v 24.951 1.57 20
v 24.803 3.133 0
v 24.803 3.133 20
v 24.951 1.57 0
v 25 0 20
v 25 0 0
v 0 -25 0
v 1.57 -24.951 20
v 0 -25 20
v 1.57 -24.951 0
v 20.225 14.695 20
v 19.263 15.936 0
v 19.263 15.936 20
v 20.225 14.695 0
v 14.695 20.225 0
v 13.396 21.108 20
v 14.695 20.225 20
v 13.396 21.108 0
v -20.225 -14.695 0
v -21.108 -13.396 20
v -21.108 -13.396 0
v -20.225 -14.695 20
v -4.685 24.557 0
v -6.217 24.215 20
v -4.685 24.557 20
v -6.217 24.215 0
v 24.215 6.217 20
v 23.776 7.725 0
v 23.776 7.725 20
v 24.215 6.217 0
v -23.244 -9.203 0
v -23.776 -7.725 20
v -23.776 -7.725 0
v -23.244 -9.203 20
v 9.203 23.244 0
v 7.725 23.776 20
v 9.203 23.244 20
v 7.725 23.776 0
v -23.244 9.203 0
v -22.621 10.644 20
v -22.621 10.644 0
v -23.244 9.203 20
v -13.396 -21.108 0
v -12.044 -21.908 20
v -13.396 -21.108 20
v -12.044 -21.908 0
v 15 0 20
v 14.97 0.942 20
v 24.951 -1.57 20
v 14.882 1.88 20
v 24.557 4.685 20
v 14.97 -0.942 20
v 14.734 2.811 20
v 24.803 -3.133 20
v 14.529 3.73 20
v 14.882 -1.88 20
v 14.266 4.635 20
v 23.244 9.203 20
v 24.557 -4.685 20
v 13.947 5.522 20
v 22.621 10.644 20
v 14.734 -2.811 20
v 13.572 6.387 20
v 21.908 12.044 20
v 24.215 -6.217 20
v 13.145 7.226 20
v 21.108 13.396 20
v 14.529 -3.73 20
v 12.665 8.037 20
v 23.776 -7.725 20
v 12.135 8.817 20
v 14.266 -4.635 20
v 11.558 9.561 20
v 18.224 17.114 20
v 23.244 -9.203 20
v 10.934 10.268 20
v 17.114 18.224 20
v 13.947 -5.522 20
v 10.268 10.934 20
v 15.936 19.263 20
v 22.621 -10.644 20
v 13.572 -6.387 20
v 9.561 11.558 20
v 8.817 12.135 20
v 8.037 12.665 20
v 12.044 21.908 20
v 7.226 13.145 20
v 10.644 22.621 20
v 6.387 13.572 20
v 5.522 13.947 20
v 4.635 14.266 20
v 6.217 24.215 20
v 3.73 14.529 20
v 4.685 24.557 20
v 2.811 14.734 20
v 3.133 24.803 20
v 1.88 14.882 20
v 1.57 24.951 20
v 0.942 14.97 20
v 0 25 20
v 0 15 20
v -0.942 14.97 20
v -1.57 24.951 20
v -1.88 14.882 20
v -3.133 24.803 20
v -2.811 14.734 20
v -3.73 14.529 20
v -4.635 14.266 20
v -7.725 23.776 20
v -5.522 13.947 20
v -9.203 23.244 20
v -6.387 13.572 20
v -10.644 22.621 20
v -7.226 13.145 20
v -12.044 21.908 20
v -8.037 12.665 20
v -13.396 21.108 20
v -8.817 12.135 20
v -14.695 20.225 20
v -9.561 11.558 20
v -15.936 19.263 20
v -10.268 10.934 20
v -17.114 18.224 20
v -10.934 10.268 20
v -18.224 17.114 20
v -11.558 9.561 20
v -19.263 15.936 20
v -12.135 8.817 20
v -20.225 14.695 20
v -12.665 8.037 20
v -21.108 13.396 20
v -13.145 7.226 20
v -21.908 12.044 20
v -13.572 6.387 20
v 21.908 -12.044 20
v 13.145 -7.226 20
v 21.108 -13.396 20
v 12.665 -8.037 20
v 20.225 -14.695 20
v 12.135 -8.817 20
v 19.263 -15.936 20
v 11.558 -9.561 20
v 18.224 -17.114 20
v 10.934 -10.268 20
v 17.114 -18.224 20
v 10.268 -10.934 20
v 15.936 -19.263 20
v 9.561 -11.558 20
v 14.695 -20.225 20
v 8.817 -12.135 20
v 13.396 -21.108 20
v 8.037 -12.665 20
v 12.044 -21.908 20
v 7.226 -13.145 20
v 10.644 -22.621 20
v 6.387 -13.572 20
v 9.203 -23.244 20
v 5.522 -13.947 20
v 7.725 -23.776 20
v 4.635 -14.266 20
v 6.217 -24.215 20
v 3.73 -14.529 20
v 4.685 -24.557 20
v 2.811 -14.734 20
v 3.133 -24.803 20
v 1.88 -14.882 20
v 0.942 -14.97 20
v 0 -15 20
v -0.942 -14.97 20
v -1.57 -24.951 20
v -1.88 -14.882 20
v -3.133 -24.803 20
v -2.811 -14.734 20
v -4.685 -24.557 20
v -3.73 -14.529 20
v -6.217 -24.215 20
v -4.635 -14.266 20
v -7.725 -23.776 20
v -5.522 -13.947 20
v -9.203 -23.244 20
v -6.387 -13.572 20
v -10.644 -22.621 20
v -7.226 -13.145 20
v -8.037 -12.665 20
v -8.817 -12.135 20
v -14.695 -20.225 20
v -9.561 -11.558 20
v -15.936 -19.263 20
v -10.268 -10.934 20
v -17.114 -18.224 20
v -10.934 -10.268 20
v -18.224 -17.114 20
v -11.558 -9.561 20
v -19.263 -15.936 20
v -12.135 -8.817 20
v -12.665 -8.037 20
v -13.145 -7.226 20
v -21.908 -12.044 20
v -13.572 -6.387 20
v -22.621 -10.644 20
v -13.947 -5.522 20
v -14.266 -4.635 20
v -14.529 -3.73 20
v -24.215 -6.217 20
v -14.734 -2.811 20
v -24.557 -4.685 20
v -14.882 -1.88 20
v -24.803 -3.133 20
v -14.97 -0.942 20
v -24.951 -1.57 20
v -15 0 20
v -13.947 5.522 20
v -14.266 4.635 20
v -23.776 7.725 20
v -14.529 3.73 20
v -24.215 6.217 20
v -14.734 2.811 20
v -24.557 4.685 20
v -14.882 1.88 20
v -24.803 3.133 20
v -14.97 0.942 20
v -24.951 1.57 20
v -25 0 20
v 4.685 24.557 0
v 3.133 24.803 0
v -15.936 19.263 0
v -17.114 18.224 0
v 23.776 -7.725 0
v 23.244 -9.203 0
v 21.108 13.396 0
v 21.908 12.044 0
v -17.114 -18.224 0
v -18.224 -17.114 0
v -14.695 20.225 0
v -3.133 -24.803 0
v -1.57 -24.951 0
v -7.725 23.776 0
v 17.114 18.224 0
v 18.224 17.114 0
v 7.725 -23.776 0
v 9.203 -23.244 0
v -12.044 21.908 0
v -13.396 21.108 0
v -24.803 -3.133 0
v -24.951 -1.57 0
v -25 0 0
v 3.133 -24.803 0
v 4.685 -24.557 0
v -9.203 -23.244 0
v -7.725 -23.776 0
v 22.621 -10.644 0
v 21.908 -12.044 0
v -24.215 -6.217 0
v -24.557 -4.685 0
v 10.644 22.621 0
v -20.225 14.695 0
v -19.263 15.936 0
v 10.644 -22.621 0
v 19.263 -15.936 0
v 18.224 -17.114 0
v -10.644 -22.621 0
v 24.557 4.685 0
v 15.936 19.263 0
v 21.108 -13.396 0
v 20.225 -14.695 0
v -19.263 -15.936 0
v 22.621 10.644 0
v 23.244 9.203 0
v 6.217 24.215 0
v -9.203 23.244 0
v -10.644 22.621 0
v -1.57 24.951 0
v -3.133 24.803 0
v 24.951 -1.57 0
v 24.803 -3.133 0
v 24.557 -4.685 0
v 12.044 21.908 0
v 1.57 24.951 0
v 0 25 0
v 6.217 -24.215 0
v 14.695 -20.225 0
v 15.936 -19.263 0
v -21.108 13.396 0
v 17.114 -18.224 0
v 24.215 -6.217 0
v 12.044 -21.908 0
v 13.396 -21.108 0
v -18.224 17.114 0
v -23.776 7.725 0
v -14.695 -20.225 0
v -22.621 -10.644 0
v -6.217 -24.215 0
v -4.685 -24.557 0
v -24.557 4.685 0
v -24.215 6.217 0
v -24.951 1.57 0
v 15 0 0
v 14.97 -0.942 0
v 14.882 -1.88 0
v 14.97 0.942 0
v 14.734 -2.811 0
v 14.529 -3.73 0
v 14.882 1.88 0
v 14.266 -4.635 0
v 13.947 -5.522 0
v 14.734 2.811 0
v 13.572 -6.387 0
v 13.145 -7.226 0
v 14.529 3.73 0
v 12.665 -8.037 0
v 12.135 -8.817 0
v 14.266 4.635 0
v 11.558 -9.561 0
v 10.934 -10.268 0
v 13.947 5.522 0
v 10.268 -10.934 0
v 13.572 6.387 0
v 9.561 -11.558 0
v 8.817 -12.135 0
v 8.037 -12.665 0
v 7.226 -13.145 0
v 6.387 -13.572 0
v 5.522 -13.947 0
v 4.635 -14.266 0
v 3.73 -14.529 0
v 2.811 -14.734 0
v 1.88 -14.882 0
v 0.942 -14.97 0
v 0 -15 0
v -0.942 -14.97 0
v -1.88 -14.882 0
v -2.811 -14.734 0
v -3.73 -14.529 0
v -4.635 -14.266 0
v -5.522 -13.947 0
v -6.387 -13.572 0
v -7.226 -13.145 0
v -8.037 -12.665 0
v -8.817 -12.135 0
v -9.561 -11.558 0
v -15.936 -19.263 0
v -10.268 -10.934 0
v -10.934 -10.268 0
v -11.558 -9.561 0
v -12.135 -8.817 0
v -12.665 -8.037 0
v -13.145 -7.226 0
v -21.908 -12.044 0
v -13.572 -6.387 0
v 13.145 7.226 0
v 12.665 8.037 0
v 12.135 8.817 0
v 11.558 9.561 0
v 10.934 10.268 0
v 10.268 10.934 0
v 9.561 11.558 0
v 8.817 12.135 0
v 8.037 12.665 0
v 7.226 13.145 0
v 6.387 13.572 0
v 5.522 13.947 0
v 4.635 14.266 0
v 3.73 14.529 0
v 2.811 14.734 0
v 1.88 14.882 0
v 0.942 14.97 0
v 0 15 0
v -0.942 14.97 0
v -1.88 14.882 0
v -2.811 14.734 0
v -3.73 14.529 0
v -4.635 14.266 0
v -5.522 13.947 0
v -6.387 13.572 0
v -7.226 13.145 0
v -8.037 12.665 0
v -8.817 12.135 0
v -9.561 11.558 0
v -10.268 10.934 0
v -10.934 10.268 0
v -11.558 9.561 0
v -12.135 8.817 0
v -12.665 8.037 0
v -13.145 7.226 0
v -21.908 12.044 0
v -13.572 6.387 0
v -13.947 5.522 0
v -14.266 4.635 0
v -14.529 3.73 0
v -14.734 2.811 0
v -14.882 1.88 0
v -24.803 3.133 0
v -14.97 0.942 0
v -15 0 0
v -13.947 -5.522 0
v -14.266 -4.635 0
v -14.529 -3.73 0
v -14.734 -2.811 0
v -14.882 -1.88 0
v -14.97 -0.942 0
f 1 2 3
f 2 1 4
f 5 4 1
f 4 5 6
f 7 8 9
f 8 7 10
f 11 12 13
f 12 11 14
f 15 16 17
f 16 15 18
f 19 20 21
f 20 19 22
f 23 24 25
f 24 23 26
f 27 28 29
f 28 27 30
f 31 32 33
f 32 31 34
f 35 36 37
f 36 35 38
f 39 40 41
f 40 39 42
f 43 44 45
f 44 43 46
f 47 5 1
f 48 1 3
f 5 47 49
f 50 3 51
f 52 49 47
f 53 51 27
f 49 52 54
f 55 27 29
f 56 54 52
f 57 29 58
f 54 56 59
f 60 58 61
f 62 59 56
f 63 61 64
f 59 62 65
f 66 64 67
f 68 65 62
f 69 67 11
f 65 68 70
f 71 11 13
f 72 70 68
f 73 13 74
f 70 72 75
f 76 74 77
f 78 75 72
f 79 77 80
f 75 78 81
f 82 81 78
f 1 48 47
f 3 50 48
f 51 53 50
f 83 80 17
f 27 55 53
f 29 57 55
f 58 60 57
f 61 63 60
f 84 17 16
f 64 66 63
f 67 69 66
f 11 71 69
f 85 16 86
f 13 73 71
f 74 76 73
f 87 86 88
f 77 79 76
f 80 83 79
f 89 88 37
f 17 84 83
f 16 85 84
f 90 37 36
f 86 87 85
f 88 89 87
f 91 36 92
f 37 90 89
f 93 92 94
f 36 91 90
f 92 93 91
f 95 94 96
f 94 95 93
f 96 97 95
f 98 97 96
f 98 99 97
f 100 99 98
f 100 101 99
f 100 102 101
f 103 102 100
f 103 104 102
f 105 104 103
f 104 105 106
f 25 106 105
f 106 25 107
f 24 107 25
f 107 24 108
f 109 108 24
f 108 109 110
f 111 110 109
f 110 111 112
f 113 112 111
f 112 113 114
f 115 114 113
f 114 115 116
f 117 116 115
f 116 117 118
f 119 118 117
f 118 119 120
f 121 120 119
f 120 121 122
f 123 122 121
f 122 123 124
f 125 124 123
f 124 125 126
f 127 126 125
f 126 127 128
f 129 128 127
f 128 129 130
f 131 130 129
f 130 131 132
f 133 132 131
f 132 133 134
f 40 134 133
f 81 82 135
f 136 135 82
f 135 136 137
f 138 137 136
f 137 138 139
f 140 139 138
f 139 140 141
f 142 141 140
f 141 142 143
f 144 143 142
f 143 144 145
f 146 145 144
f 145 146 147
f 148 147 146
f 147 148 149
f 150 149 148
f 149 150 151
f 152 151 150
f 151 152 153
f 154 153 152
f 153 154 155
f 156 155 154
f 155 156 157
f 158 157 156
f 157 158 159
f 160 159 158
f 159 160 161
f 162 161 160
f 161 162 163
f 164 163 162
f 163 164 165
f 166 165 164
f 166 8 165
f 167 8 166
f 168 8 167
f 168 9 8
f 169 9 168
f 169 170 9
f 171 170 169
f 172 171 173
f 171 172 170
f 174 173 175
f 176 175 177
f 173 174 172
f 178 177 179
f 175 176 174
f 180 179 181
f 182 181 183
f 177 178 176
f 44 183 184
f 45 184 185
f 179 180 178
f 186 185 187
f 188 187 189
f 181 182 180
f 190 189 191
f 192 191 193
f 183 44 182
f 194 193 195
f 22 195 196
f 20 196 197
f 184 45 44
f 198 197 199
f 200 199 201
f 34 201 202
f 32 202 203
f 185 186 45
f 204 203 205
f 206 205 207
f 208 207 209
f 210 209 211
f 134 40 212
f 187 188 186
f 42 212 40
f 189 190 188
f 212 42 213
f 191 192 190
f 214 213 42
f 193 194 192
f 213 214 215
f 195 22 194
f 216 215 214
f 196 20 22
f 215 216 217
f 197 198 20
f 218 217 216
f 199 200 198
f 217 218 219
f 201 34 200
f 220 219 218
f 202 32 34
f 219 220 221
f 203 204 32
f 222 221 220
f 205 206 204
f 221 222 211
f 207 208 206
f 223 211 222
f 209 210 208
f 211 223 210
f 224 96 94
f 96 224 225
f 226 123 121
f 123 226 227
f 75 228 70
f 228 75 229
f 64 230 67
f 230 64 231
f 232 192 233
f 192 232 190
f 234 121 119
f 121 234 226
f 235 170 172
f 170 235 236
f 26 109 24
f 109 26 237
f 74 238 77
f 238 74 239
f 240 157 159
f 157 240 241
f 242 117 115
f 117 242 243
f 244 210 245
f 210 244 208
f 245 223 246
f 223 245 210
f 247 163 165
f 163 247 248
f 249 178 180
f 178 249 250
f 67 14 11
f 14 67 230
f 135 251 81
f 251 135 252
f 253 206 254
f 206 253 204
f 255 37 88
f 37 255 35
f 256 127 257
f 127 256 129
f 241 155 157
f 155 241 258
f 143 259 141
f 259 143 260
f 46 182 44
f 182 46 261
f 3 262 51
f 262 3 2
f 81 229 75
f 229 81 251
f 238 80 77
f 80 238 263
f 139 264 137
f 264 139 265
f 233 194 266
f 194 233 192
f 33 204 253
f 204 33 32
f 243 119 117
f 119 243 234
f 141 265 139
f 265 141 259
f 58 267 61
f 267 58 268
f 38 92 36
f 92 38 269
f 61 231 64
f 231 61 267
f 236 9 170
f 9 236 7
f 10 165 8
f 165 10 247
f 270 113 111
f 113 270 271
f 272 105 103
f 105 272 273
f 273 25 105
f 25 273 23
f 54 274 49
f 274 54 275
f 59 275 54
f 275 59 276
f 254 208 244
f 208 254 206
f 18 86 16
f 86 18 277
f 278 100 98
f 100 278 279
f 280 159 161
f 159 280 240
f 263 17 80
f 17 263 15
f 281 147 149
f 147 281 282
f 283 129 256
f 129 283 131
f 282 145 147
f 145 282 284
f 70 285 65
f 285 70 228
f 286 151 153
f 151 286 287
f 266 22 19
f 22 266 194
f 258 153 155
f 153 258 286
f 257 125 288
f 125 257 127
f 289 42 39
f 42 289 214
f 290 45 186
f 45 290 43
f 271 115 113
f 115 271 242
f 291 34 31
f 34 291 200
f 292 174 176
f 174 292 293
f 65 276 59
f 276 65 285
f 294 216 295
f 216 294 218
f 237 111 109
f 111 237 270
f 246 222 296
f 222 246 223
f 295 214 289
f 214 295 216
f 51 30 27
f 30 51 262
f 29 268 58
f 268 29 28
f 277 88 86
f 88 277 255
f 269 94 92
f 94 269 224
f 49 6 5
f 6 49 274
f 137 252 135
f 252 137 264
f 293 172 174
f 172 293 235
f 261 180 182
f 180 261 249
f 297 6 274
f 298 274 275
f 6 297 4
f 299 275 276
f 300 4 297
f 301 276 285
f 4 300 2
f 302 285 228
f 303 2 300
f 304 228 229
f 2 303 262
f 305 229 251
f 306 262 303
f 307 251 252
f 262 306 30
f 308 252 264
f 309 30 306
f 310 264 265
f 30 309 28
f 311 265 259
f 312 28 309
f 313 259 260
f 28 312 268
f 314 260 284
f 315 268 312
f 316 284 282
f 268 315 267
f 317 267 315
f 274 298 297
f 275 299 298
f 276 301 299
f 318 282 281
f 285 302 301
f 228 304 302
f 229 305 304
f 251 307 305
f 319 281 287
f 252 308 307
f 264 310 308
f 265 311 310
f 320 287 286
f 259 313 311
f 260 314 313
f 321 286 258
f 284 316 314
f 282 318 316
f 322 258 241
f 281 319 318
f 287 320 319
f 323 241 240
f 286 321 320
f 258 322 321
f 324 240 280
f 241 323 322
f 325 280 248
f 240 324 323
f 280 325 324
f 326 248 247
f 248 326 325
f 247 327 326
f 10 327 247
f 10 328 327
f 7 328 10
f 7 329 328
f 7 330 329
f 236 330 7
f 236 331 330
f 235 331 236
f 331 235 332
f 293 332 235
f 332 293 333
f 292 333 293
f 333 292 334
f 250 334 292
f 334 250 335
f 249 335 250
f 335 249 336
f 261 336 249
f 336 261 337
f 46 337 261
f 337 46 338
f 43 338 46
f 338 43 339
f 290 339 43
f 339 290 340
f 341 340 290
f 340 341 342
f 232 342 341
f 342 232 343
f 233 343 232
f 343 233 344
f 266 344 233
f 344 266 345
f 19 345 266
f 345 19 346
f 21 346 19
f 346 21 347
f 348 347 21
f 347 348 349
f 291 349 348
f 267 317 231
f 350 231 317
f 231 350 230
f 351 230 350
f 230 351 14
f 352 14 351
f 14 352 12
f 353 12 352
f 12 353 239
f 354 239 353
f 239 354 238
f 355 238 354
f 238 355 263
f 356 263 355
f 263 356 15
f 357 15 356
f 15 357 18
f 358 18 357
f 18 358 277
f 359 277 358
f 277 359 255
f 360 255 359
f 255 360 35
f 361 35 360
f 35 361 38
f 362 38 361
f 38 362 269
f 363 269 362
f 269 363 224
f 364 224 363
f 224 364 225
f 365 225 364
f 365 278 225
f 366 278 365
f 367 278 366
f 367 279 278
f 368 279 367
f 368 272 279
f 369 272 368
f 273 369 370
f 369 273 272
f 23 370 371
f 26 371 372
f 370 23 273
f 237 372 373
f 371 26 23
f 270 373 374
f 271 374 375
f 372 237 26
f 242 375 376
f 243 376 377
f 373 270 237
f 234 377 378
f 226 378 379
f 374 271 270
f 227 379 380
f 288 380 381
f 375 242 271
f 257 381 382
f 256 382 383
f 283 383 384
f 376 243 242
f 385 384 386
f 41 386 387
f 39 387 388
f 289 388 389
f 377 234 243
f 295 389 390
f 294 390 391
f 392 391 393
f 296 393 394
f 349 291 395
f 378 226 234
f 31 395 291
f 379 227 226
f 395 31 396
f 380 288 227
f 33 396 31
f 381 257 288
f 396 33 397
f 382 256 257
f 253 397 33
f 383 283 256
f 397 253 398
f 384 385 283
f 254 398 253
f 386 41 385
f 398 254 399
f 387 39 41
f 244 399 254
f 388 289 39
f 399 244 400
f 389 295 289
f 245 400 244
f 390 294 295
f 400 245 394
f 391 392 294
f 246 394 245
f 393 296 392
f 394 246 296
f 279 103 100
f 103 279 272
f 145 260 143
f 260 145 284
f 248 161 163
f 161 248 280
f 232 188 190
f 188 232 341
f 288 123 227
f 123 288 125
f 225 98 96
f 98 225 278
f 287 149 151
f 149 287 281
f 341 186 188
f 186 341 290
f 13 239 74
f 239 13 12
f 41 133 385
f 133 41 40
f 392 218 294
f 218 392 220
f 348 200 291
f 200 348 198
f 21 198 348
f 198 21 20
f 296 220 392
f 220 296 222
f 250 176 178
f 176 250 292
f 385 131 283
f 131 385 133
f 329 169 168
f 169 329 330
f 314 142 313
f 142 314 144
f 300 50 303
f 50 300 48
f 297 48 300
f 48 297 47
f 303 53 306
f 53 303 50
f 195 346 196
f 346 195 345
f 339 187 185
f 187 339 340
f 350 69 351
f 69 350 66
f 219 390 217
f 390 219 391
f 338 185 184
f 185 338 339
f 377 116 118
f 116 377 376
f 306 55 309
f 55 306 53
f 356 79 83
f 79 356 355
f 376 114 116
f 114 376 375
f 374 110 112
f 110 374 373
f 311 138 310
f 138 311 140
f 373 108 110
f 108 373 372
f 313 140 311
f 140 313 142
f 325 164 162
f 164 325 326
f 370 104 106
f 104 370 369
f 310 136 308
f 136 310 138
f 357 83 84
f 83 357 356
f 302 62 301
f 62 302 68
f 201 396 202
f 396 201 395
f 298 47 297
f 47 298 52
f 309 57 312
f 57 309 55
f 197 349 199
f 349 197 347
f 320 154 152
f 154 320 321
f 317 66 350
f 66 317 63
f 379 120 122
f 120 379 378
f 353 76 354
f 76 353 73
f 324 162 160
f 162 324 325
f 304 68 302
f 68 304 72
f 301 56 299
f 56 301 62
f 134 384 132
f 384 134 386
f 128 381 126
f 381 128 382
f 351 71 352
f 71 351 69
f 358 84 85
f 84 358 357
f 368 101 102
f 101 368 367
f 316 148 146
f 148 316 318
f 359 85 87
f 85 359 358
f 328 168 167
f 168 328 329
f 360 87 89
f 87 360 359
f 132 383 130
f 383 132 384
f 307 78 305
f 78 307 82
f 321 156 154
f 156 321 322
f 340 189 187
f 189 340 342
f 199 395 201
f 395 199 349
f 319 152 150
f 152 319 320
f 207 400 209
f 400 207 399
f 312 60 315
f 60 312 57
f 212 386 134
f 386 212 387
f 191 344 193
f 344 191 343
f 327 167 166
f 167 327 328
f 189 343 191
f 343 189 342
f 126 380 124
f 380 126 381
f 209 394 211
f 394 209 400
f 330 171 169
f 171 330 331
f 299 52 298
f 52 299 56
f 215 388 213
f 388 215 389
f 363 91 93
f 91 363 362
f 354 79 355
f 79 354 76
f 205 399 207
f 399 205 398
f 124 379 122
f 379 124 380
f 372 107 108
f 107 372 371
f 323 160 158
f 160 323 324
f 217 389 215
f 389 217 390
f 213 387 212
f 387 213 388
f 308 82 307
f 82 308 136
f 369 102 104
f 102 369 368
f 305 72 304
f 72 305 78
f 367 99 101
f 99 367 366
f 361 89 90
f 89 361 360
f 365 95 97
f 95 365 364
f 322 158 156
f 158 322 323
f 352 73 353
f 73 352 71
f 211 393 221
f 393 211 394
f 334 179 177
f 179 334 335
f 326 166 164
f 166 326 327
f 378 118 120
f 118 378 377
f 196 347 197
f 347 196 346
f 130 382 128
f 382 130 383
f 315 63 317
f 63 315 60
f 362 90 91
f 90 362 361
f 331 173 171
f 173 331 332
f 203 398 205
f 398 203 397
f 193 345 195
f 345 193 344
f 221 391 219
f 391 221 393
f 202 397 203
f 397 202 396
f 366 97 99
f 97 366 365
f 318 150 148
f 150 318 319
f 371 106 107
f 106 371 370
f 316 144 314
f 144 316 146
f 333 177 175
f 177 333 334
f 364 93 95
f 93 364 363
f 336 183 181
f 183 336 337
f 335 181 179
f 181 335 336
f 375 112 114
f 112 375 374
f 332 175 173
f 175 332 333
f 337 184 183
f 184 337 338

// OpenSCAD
// Bushing parameters
outer_diameter = 50;
inner_diameter = 30;
height = 20;
wall_thickness = (outer_diameter - inner_diameter) / 2;

// Create the bushing
difference() {
  cylinder(h = height, r = outer_diameter / 2, $fn = 100);
  cylinder(h = height, r = inner_diameter / 2, $fn = 100);
}
